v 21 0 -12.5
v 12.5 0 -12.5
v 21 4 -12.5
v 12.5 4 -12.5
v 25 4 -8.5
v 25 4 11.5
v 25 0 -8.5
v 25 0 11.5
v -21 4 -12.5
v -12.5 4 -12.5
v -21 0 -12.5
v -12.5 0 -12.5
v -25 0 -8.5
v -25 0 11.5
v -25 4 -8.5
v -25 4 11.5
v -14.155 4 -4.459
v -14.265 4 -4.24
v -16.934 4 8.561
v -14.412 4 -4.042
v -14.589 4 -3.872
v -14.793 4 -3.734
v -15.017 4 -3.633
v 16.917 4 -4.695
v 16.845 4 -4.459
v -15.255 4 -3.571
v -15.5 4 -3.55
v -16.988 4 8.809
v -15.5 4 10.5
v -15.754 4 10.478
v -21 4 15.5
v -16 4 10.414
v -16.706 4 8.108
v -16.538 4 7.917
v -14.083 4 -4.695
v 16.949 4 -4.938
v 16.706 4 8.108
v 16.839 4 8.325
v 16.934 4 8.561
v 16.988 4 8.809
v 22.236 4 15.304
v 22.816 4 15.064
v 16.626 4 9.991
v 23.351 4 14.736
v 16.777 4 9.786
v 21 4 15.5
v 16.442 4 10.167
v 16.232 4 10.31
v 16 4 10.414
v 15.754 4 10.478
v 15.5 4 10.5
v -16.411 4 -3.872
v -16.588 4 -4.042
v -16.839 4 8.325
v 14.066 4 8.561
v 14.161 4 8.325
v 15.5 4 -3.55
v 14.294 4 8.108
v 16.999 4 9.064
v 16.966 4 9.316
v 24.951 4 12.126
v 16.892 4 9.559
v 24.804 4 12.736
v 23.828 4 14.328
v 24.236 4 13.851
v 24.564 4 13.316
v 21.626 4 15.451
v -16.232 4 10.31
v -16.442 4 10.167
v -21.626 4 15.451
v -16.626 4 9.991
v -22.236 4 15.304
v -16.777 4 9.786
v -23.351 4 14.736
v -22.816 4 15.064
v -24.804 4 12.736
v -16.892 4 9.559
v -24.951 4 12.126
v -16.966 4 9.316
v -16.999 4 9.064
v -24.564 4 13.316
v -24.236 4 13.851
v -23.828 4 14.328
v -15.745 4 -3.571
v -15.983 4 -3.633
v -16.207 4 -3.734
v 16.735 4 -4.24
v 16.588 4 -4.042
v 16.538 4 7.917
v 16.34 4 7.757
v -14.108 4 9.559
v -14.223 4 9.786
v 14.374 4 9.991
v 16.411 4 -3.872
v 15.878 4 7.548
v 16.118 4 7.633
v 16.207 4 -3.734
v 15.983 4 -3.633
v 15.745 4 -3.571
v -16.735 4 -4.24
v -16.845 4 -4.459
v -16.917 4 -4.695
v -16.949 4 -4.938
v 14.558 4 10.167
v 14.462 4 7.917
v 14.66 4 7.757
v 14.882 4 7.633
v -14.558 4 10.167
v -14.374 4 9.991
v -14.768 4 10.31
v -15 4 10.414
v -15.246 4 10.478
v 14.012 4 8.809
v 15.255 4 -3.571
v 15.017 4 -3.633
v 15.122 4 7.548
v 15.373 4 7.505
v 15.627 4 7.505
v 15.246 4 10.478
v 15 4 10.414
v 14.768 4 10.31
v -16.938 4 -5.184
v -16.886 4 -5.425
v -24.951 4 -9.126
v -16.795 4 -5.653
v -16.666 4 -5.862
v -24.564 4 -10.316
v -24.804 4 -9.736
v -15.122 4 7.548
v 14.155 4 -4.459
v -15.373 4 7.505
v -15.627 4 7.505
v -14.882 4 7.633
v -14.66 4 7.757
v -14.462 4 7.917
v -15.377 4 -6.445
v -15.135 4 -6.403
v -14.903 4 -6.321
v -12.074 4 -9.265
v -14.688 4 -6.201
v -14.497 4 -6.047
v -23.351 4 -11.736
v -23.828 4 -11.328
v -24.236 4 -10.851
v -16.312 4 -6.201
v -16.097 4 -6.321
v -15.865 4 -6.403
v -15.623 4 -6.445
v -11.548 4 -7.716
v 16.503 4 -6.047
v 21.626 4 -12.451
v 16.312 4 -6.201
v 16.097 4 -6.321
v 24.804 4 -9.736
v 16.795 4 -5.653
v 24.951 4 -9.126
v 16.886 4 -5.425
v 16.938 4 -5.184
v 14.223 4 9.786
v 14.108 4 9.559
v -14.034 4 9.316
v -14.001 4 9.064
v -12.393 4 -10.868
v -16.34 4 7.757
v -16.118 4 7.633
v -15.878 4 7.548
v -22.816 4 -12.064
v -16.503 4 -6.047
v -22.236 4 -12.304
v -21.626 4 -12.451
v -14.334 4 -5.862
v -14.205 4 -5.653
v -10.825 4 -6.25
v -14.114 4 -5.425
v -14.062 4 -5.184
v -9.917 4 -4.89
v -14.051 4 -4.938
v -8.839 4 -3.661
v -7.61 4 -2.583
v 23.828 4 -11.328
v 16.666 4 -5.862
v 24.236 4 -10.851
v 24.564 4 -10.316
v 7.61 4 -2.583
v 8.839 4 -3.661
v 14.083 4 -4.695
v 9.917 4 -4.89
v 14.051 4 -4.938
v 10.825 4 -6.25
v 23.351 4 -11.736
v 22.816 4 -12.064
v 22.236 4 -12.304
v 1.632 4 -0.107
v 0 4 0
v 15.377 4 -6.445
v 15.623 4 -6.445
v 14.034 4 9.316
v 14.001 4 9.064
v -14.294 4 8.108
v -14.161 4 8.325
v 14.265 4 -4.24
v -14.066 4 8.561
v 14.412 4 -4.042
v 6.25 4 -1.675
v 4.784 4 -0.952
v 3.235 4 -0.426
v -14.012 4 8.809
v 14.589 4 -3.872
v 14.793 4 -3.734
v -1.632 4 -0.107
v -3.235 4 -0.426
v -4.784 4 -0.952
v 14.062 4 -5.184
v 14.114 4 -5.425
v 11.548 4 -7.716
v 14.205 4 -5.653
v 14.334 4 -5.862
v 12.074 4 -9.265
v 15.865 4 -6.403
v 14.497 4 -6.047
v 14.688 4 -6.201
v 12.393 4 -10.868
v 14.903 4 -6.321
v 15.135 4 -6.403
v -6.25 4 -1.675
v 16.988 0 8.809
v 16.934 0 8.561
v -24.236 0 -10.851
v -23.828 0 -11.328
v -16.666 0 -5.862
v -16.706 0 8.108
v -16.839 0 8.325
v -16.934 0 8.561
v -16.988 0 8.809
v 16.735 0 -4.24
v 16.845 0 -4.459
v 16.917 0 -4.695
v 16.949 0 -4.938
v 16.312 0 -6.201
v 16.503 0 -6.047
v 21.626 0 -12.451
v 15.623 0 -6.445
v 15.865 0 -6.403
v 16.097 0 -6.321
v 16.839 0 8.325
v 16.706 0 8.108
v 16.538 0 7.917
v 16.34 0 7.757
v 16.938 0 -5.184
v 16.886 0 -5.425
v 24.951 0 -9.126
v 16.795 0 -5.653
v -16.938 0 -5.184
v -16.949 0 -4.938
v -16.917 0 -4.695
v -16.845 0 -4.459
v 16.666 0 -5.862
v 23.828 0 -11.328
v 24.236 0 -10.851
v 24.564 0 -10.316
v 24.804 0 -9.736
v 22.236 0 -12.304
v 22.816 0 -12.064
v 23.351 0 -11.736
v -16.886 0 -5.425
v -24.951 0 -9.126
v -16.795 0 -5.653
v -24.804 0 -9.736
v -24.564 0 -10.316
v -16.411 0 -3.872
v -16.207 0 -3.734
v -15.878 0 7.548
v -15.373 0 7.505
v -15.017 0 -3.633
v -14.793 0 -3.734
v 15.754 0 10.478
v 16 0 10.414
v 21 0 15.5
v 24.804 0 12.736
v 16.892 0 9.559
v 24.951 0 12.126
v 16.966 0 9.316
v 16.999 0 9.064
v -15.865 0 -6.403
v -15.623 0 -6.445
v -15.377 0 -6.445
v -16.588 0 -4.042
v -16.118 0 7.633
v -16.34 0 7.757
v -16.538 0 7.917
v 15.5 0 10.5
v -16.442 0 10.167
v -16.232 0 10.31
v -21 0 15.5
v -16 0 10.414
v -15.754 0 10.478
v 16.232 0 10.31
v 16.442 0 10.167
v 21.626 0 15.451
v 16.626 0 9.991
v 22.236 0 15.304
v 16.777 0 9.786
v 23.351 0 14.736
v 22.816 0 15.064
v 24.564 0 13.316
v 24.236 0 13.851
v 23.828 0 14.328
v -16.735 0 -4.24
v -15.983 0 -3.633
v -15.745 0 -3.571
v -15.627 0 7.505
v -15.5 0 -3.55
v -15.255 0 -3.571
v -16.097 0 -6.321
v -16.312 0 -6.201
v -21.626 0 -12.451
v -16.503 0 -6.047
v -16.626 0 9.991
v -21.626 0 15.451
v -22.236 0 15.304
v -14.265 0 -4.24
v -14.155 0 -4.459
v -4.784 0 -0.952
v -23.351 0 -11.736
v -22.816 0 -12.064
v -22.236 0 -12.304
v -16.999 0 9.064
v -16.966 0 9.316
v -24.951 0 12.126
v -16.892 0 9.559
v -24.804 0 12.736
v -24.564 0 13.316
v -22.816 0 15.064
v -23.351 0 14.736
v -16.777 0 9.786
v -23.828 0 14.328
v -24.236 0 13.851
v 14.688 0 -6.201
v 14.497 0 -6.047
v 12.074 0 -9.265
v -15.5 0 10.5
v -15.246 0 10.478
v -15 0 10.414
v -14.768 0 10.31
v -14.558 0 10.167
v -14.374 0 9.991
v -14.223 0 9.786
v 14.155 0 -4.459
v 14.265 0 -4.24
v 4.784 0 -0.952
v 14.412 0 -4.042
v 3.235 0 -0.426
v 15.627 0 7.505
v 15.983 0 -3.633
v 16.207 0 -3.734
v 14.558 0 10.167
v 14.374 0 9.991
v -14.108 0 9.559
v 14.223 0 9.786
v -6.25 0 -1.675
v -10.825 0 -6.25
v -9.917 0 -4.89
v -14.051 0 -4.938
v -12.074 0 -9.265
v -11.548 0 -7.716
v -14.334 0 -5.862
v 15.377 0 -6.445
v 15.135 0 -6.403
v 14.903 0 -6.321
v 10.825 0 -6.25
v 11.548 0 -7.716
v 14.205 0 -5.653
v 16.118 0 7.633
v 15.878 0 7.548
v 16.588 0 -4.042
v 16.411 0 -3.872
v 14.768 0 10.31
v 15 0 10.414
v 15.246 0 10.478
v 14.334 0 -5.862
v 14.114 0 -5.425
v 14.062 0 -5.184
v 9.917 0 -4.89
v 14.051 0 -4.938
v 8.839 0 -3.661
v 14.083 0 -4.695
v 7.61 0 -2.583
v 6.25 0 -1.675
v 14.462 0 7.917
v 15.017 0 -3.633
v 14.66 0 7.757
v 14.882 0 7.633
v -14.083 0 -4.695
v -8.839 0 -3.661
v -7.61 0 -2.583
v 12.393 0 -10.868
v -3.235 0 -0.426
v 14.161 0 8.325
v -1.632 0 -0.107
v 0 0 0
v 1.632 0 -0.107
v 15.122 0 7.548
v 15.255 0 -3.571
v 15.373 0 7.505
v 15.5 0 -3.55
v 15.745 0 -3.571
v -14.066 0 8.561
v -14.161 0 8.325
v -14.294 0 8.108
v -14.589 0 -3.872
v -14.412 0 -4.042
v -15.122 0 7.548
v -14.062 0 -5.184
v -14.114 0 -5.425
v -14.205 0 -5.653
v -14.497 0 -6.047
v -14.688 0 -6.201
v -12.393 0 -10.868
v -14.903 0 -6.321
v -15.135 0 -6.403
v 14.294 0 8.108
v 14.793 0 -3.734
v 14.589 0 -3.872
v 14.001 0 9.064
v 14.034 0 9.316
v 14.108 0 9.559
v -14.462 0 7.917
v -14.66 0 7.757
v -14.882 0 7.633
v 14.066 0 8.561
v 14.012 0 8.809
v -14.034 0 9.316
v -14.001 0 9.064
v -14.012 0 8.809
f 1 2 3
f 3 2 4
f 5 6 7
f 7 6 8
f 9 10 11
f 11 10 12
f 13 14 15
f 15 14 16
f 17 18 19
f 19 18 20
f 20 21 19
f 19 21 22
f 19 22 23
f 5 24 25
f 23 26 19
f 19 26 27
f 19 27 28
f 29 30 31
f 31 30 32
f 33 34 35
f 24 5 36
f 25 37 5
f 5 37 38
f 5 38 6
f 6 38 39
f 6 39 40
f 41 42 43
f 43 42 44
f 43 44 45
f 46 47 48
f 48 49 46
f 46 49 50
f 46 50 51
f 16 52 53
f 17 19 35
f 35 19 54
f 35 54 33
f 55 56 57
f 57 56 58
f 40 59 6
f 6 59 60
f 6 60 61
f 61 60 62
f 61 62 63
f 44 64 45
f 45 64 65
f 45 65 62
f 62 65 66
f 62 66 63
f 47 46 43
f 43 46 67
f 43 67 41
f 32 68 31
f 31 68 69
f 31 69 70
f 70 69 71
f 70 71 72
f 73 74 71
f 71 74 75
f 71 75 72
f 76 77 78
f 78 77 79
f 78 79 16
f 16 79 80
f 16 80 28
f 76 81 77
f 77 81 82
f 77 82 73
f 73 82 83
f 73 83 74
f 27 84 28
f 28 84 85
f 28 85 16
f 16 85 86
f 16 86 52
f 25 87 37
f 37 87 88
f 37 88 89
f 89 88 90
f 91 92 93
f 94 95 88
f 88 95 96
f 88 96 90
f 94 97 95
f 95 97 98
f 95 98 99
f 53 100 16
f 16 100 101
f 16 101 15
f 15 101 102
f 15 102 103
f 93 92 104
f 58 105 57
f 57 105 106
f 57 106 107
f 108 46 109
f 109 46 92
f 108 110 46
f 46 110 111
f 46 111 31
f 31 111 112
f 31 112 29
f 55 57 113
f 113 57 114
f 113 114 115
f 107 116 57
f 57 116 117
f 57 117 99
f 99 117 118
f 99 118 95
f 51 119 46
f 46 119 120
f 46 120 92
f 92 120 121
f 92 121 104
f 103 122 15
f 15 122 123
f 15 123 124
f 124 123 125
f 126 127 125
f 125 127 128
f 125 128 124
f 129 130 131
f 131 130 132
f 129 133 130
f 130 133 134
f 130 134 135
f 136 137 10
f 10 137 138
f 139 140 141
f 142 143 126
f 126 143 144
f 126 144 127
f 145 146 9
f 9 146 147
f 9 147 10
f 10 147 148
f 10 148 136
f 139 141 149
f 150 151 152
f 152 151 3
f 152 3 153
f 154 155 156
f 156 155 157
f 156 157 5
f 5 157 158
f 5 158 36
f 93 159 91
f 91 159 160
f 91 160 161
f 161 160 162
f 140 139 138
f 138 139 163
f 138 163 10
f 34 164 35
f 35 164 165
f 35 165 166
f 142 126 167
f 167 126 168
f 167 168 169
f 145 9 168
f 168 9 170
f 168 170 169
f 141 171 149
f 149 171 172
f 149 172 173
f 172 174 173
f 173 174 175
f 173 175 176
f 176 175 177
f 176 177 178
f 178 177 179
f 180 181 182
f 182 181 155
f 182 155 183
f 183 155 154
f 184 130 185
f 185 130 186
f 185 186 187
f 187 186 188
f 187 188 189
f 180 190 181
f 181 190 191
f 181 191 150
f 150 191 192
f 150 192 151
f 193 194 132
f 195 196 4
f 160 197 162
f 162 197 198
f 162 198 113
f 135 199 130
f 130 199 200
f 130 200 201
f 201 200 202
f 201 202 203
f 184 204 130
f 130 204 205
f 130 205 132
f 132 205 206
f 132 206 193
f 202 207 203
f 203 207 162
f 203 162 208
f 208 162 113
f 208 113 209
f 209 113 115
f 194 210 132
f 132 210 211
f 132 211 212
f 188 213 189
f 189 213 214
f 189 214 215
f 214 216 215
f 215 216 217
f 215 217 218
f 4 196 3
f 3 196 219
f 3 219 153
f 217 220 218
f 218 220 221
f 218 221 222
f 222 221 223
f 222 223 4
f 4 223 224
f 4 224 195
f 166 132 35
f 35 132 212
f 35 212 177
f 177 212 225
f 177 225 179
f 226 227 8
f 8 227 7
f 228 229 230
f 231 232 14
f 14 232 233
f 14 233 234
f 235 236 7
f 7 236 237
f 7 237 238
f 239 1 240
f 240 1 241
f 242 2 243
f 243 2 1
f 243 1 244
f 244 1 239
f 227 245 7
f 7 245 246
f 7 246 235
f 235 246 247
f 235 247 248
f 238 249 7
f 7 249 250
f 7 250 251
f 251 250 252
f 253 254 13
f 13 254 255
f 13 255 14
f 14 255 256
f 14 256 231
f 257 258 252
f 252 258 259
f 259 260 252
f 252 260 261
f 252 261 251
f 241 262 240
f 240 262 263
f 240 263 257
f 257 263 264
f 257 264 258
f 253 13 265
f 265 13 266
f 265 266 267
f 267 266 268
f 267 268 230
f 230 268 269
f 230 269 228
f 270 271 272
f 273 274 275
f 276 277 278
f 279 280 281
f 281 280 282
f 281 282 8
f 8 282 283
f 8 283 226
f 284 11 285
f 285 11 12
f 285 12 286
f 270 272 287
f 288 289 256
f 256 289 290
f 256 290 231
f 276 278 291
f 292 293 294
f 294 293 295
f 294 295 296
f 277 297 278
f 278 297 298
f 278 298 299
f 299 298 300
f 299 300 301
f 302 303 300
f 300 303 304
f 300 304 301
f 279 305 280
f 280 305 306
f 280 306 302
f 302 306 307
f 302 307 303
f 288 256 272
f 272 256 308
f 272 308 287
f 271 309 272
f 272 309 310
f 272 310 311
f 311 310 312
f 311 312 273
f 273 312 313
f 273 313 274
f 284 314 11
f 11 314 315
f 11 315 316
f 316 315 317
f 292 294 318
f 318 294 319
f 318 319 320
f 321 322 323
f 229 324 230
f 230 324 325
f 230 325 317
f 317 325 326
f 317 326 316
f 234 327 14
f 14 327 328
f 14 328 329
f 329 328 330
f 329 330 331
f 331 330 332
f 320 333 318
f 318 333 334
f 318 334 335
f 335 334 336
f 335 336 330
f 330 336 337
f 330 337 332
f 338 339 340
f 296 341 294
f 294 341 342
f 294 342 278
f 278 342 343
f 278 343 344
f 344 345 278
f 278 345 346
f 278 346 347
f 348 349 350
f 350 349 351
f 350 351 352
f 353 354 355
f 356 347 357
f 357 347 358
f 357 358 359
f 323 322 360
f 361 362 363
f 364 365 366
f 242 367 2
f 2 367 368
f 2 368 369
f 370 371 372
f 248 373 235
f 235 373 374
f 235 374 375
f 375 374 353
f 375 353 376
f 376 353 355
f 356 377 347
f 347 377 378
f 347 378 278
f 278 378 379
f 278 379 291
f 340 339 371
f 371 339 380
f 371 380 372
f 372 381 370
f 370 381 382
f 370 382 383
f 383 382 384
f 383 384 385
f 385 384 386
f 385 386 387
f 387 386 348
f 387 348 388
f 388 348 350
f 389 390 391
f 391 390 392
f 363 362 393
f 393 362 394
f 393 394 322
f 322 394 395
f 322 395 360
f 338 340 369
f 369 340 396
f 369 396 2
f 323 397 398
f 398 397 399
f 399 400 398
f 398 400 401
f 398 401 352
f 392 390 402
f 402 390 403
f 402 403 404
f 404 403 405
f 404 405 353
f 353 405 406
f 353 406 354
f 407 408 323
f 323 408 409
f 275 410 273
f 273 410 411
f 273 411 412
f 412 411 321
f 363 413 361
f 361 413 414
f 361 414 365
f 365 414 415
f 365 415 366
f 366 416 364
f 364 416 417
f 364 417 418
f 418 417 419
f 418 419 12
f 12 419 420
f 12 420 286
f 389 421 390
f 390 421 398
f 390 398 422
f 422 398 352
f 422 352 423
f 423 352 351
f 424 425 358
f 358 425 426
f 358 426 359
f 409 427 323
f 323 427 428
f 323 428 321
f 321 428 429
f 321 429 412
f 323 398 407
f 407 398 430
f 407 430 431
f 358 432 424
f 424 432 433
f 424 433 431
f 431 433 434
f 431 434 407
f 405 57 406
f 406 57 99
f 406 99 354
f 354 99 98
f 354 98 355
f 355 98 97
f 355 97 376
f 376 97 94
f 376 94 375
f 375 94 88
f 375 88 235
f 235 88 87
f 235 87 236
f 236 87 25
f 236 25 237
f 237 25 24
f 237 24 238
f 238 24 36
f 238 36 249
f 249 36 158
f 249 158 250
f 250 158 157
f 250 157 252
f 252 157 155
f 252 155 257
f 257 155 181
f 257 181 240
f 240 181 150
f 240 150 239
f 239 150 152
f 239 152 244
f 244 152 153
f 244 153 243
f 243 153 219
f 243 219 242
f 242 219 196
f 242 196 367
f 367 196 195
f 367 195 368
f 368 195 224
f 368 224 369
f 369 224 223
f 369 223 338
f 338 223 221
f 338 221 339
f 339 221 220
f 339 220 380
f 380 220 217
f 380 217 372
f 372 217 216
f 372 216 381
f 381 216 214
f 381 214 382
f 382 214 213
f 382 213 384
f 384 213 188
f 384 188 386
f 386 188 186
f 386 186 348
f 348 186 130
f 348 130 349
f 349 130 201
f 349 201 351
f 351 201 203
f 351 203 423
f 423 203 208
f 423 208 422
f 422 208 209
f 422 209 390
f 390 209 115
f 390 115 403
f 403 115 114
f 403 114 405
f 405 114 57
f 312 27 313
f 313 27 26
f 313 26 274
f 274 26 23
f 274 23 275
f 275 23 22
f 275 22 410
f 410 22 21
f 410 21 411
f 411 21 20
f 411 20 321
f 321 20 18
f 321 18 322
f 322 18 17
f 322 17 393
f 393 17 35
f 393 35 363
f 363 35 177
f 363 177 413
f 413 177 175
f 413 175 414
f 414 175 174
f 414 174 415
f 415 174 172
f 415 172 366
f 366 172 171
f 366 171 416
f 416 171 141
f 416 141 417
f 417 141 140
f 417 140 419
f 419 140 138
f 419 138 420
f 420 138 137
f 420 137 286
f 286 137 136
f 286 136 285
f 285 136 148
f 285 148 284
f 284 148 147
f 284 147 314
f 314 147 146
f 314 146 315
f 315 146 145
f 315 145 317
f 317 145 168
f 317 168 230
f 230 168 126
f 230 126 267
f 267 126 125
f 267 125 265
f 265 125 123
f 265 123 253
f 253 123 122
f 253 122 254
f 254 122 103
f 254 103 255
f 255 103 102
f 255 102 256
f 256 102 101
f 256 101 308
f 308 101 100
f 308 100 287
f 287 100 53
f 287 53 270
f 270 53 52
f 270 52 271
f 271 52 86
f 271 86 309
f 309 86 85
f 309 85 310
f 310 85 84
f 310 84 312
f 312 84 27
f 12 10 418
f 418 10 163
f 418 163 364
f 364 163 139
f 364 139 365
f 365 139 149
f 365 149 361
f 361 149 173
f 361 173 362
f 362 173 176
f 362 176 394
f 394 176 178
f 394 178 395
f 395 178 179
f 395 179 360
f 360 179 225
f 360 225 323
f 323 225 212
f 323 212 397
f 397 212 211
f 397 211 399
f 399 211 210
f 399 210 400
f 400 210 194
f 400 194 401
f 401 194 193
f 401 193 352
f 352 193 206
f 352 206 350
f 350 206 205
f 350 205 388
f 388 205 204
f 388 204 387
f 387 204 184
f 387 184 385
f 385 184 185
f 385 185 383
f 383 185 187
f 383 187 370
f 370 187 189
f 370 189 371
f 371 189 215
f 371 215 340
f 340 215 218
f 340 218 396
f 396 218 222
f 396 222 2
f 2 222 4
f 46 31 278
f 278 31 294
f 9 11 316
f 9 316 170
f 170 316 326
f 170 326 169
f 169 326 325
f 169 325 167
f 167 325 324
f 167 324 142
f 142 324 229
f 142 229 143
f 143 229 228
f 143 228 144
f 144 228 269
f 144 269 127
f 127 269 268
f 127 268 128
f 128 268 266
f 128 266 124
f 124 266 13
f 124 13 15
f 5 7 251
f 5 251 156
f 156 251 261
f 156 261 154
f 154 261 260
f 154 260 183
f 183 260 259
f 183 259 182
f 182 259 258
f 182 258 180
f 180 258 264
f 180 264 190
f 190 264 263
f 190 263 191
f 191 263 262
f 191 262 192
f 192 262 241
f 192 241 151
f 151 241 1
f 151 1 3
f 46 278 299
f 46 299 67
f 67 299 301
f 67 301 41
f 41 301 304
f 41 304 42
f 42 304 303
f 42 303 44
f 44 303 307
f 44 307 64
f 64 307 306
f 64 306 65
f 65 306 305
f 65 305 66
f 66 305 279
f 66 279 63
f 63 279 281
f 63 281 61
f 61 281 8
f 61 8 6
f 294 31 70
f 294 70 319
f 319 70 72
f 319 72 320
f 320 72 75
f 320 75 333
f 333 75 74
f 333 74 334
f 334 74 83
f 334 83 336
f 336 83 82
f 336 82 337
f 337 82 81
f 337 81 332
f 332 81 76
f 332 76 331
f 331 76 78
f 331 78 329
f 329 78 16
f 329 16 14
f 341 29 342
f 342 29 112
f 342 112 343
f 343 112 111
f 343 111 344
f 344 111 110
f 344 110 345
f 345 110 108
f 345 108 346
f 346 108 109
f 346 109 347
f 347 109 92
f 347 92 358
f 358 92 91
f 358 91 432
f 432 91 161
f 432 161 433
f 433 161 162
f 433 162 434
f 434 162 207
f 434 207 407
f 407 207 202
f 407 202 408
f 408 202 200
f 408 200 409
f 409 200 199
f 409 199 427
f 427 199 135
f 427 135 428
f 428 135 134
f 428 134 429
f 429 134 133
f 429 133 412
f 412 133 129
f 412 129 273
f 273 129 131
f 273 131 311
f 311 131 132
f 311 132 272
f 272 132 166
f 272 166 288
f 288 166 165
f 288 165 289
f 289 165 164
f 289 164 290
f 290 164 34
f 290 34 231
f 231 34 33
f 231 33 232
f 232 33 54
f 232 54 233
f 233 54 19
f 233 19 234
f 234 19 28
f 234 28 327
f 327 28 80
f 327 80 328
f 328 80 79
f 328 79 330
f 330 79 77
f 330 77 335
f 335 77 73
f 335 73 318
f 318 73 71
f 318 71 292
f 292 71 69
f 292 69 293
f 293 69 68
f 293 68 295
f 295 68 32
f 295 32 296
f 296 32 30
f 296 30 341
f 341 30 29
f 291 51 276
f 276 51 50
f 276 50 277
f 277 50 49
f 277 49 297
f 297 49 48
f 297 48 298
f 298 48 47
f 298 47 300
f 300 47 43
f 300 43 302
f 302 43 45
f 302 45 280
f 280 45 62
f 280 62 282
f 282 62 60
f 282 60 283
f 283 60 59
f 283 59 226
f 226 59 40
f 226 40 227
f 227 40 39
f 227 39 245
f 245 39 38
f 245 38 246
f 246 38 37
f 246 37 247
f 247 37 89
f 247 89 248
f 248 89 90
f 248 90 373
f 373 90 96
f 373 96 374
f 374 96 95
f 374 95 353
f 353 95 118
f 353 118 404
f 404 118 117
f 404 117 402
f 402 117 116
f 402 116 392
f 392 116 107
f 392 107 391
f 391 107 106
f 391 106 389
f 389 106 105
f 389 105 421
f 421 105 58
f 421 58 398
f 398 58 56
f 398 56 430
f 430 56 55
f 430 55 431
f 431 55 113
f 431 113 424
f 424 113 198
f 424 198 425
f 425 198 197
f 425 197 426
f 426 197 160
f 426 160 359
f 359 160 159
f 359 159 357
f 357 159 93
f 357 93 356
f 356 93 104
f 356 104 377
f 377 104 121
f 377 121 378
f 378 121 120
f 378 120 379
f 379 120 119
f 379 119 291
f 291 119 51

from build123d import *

# Parameters (mm, degrees)
SKETCH_1_W          = 50
SKETCH_1_H          = 25
EXTRUDE_1_DEPTH     = 4
SKETCH_2_R          = 1.45
CUT_EXTRUDE_1_DEPTH = 4
SKETCH_3_R          = 12.5
CUT_EXTRUDE_2_DEPTH = 4
SKETCH_5_W          = 50
SKETCH_5_H          = 4
EXTRUDE_2_DEPTH     = 3
FILLET_1_R          = 4
SKETCH_11_R         = 1.5
CUT_EXTRUDE_4_DEPTH = 10


with BuildPart() as part:
    # 草图1 → 凸台-拉伸1 (new body)
    with BuildSketch(Plane(origin=(0, 0, 0), x_dir=(1, 0, 0), z_dir=(0, 1, 0))):
        Rectangle(SKETCH_1_W, SKETCH_1_H)
    extrude(amount=EXTRUDE_1_DEPTH)

    # 草图2 → 切除-拉伸1 (cut)
    with BuildSketch(Plane(origin=(0, 4, 0), x_dir=(1, 0, 0), z_dir=(0, 1, 0))):
        with Locations(Location((-15.5, 5, 0), (0, 0, 270))):
            Circle(SKETCH_2_R)
        with Locations(Location((15.5, 5, 0), (0, 0, 270))):
            Circle(SKETCH_2_R)
    extrude(amount=-CUT_EXTRUDE_1_DEPTH, mode=Mode.SUBTRACT)

    # 草图3 → 切除-拉伸2 (cut)
    with BuildSketch(Plane(origin=(0, 4, 0), x_dir=(1, 0, 0), z_dir=(0, 1, 0))):
        with Locations((0, 12.5)):
            Circle(SKETCH_3_R)
    extrude(amount=-CUT_EXTRUDE_2_DEPTH, mode=Mode.SUBTRACT)

    # 草图5 → 凸台-拉伸2 (add)
    with BuildSketch(Plane.XY.offset(12.5)):
        with Locations((0, 2)):
            Rectangle(SKETCH_5_W, SKETCH_5_H)
    extrude(amount=EXTRUDE_2_DEPTH)

    # 圆角1
    fillet_1_edges = [part.edges().sort_by_distance(p)[0] for p in [
        (-25, 2, 15.5),
        (25, 2, 15.5),
        (-25, 2, -12.5),
        (25, 2, -12.5),
    ]]
    fillet(fillet_1_edges, radius=FILLET_1_R)

    # 草图11 → 切除-拉伸4 (cut)
    with BuildSketch(Plane(origin=(0, 4, 0), x_dir=(1, 0, 0), z_dir=(0, 1, 0))):
        with Locations(Location((-15.5, -9, 0), (0, 0, 270))):
            Circle(SKETCH_11_R)
        with Locations(Location((15.5, -9, 0), (0, 0, 270))):
            Circle(SKETCH_11_R)
    extrude(amount=-CUT_EXTRUDE_4_DEPTH, mode=Mode.SUBTRACT)


solid = part.part
